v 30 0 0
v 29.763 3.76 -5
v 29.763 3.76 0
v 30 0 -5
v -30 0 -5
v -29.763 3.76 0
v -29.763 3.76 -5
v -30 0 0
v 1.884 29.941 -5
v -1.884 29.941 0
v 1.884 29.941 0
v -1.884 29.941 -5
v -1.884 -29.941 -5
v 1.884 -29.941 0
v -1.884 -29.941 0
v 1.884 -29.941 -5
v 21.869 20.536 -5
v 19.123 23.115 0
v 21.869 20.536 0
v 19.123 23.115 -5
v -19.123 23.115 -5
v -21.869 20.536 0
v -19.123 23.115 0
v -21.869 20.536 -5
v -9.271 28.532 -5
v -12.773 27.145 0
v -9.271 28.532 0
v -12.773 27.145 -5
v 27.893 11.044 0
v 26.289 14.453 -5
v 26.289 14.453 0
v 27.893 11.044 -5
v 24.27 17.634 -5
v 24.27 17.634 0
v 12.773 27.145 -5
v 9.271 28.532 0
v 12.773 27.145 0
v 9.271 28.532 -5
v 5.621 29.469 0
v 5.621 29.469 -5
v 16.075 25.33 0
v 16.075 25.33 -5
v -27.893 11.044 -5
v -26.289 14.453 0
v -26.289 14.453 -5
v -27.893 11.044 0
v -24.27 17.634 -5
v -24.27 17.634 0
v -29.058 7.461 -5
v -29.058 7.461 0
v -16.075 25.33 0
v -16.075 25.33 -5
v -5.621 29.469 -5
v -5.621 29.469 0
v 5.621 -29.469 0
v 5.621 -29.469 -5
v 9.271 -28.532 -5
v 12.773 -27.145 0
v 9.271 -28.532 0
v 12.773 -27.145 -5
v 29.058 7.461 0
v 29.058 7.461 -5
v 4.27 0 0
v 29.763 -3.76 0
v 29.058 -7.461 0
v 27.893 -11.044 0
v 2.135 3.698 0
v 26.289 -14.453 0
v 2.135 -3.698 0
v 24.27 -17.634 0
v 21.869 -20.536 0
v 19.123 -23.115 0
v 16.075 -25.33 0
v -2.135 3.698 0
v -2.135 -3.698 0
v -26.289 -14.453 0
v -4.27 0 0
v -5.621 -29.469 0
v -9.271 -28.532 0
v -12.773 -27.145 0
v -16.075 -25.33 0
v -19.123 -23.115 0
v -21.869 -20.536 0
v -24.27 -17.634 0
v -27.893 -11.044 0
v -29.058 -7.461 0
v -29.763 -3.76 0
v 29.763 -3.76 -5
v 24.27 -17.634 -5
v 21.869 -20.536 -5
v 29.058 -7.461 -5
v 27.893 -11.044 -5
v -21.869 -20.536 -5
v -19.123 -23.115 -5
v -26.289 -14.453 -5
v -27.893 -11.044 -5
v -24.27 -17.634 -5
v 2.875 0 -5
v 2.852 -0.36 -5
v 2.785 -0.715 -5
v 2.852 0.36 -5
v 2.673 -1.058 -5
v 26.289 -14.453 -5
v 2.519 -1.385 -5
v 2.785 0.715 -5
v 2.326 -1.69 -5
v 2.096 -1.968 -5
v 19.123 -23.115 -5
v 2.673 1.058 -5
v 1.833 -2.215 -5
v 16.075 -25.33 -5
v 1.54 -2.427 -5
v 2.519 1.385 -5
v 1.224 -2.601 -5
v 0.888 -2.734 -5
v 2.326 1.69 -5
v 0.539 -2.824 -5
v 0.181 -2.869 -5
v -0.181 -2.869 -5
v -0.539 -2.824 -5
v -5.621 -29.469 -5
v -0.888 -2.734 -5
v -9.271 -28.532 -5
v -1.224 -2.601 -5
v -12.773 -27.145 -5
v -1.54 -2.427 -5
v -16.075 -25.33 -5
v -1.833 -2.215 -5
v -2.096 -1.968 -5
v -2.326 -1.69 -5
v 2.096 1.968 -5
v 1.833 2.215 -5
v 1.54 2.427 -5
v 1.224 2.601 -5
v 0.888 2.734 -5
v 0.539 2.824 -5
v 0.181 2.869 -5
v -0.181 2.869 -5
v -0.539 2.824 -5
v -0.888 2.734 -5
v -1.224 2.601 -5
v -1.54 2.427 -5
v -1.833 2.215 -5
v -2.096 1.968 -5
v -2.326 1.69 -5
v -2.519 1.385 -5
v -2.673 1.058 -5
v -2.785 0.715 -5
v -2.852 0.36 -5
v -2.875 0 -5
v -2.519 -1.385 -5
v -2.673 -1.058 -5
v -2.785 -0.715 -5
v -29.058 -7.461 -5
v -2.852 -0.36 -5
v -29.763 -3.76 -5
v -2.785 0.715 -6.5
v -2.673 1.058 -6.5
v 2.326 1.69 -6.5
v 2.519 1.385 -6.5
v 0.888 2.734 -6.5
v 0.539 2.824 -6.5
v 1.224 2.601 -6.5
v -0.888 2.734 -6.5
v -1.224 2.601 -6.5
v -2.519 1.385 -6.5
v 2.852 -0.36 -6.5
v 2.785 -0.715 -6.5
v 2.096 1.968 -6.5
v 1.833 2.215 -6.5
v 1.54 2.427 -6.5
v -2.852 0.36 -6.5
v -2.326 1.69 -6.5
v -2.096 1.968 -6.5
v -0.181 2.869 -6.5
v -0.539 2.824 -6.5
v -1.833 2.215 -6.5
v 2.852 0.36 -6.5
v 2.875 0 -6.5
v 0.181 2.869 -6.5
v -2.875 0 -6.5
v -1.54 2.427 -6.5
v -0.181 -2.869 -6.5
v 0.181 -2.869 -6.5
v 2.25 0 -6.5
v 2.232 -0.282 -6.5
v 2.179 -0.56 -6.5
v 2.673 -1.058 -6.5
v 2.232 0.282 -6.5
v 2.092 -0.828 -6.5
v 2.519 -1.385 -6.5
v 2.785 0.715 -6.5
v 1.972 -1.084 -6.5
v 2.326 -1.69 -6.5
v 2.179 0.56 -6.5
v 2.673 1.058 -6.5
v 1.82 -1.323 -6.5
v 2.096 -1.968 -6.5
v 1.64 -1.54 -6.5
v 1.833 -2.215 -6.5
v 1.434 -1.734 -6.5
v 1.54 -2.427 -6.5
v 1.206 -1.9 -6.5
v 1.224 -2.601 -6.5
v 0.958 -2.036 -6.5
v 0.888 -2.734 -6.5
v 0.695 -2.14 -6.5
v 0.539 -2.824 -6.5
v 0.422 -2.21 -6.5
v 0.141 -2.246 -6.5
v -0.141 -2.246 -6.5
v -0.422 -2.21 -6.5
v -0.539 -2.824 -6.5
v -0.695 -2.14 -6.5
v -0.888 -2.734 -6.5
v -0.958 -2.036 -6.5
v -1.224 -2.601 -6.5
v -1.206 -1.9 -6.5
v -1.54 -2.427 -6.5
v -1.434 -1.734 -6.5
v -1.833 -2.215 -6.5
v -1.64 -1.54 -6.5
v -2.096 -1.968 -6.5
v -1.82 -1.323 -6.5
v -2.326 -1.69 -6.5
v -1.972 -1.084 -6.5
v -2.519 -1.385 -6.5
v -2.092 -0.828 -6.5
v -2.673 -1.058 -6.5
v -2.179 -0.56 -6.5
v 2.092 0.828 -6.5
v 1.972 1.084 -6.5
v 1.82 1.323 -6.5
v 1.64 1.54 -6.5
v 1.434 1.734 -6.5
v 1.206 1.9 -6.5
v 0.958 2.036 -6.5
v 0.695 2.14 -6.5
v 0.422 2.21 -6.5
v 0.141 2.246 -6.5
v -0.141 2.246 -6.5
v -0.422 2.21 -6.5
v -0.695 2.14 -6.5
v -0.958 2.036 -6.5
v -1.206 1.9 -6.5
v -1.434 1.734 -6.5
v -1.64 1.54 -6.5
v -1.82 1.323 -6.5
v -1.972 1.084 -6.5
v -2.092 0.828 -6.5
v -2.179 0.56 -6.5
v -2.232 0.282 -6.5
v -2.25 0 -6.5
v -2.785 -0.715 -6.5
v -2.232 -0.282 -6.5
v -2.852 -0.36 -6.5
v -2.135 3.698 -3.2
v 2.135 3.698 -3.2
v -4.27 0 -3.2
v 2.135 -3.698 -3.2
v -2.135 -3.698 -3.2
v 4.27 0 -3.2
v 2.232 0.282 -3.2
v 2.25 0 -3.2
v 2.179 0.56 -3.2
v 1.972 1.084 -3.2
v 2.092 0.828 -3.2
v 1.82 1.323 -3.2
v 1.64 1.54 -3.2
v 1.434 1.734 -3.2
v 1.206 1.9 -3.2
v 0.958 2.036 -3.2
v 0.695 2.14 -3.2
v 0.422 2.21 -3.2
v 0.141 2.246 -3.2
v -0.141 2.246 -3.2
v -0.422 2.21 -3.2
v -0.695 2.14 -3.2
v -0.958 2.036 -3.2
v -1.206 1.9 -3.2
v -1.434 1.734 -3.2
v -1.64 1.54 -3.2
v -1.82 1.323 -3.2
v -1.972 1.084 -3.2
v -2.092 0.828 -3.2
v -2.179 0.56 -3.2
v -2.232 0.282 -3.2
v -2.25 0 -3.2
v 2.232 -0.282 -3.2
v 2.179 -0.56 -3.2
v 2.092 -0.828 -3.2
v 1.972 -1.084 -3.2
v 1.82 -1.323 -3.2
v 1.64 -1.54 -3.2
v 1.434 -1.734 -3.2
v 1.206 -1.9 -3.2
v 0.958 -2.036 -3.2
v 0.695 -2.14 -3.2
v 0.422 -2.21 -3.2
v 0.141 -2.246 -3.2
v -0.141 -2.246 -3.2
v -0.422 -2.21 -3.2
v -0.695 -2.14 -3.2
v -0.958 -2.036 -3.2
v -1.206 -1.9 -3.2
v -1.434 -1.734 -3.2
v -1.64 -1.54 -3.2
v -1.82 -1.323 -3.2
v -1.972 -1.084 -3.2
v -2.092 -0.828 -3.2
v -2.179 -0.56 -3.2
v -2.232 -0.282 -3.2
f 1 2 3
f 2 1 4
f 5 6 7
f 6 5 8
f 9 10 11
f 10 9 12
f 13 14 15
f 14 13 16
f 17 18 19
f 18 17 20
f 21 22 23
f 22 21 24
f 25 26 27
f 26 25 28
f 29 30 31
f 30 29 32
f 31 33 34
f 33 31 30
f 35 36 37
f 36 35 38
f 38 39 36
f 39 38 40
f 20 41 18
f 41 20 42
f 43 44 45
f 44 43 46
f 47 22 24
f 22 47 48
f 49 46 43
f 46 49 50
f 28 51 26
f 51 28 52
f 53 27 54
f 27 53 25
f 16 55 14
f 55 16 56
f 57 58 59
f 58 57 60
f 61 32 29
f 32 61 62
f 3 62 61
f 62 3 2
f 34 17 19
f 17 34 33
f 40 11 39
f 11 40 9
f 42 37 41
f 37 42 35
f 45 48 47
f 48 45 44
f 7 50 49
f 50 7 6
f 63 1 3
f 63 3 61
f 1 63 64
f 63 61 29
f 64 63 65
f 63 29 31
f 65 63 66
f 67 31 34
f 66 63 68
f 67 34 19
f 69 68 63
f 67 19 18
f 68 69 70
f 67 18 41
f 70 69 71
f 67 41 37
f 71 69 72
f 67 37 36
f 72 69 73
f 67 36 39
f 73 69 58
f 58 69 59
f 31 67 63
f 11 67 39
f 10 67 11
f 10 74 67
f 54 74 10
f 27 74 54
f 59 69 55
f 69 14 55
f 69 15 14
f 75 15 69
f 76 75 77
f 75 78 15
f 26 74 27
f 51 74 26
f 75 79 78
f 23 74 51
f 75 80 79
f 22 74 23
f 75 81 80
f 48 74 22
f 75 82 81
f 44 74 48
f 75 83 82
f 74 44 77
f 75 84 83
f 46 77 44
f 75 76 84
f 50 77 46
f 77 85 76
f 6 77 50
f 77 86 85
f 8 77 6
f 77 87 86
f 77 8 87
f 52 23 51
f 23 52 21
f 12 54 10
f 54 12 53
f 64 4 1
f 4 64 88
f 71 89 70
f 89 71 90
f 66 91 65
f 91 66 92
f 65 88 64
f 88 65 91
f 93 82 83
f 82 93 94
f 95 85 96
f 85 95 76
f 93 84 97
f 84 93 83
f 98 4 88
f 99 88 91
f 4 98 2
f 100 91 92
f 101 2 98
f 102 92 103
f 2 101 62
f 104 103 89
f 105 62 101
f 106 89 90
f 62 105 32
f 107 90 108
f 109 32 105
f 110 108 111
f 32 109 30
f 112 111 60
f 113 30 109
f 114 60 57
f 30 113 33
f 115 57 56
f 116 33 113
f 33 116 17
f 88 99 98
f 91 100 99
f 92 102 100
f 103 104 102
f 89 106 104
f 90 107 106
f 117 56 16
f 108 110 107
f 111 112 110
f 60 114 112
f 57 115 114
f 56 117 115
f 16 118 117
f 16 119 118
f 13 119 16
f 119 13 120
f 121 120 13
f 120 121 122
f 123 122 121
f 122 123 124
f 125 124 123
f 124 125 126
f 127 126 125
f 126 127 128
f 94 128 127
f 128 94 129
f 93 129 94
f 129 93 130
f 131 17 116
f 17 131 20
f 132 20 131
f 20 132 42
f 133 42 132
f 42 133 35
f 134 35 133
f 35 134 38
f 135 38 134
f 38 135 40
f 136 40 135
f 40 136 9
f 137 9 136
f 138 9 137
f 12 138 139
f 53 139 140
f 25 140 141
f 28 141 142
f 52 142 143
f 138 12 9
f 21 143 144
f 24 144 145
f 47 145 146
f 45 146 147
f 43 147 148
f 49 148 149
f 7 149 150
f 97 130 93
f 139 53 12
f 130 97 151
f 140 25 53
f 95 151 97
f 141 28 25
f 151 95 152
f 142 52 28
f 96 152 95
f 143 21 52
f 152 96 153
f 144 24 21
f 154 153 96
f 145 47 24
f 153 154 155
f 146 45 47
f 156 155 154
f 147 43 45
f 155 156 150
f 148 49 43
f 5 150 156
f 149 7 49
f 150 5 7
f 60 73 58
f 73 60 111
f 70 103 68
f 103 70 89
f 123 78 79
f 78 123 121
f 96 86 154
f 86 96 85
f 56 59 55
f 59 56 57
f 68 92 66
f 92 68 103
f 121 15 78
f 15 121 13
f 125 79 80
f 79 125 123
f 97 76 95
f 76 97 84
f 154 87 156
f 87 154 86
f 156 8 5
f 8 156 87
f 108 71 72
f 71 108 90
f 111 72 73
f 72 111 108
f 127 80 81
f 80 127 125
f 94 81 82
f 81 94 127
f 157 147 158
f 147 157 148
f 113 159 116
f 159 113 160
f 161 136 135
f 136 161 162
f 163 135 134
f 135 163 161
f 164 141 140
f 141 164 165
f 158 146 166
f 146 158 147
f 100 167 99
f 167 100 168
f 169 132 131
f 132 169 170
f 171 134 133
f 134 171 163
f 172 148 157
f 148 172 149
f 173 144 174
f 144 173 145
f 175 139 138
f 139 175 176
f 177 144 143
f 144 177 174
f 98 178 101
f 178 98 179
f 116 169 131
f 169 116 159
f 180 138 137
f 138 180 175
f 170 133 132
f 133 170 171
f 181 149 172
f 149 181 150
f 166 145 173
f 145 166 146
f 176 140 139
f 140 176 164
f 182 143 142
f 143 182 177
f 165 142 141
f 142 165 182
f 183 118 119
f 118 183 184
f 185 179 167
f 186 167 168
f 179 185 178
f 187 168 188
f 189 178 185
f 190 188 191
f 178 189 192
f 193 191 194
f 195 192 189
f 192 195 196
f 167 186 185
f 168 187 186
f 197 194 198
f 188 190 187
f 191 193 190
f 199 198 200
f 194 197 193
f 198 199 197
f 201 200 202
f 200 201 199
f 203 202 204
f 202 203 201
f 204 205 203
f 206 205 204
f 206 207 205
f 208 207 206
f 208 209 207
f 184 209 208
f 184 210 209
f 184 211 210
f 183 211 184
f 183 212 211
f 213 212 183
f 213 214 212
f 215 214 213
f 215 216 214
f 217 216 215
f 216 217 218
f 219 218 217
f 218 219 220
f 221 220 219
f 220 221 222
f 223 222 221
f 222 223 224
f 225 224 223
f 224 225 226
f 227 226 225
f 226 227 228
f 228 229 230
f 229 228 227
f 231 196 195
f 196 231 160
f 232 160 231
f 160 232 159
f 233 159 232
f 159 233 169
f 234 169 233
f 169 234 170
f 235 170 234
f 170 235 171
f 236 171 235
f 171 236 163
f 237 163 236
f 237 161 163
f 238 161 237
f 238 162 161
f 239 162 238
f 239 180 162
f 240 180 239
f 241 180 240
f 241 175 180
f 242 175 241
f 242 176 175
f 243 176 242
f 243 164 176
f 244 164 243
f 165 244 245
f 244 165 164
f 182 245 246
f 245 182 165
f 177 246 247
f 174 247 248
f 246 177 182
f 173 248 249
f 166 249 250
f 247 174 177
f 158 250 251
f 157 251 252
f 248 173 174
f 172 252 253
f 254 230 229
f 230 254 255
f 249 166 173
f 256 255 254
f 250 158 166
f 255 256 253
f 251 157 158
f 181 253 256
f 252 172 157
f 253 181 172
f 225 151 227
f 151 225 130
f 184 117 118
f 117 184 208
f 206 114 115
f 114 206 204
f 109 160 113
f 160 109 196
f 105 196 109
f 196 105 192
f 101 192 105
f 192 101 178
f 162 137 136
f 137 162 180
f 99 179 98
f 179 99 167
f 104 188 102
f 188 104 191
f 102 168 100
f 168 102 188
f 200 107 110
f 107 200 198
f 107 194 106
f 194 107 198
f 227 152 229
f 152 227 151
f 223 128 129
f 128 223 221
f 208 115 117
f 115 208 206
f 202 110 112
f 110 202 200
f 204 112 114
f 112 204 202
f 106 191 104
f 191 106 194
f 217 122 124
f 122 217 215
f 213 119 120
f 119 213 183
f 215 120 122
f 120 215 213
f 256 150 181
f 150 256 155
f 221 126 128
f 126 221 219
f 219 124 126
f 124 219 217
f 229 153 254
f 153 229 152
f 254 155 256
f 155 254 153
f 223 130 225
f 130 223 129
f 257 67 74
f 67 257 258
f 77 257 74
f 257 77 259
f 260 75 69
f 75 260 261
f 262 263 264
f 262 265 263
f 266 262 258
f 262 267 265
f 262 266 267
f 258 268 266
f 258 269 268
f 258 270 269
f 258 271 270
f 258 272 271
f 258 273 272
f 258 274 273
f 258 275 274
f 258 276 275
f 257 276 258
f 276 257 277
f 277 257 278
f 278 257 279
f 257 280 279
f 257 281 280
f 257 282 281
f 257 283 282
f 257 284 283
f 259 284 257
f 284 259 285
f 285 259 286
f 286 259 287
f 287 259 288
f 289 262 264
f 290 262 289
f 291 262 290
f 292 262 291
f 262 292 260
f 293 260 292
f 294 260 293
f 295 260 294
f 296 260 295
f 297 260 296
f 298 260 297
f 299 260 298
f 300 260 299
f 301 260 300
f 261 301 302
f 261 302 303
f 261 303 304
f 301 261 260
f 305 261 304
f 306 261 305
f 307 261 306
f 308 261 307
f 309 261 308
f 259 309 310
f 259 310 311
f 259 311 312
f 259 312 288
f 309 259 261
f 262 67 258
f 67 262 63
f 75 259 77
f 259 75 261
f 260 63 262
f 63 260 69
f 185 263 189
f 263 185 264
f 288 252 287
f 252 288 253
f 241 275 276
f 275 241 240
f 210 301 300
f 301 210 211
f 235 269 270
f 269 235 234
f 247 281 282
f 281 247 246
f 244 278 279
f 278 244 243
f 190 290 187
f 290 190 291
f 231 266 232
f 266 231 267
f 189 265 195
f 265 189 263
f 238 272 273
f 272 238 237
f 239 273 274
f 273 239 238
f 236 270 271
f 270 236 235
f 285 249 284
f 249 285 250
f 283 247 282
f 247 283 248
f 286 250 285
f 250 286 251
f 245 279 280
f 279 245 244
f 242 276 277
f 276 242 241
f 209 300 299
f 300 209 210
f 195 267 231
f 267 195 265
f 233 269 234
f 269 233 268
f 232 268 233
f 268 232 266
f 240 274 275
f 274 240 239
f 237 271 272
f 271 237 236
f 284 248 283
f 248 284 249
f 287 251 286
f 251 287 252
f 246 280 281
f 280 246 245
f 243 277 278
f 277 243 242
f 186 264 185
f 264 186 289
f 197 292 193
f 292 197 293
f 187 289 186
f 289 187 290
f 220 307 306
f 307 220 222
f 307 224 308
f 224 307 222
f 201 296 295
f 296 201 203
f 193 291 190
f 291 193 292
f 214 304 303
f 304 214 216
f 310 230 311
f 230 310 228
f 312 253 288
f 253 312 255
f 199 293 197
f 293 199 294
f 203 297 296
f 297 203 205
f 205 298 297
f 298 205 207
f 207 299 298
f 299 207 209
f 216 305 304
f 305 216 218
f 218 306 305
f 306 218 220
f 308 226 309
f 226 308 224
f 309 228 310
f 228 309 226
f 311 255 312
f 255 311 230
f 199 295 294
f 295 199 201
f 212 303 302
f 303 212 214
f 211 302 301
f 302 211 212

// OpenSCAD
$fn = 50;


difference() {
	union() {
		translate(v = [0, 0, -5.0000000000]) {
			cylinder(h = 5.0000000000, r = 30.0000000000);
		}
		translate(v = [0, 0, -6.5000000000]) {
			cylinder(h = 6.5000000000, r = 2.8750000000);
		}
	}
	union() {
		translate(v = [0, 0, 0]) {
			rotate(a = [0, 0, 0]) {
				difference() {
					union() {
						translate(v = [0, 0, -3.2000000000]) {
							linear_extrude(height = 3.2000000000) {
								polygon(points = [[4.2698000000, 0.0000000000], [2.1349000000, 3.6977552691], [-2.1349000000, 3.6977552691], [-4.2698000000, 0.0000000000], [-2.1349000000, -3.6977552691], [2.1349000000, -3.6977552691]]);
							}
						}
					}
					union();
				}
			}
		}
		#translate(v = [0, 0, -100.0000000000]) {
			cylinder(h = 200, r = 2.2500000000);
		}
	}
}
